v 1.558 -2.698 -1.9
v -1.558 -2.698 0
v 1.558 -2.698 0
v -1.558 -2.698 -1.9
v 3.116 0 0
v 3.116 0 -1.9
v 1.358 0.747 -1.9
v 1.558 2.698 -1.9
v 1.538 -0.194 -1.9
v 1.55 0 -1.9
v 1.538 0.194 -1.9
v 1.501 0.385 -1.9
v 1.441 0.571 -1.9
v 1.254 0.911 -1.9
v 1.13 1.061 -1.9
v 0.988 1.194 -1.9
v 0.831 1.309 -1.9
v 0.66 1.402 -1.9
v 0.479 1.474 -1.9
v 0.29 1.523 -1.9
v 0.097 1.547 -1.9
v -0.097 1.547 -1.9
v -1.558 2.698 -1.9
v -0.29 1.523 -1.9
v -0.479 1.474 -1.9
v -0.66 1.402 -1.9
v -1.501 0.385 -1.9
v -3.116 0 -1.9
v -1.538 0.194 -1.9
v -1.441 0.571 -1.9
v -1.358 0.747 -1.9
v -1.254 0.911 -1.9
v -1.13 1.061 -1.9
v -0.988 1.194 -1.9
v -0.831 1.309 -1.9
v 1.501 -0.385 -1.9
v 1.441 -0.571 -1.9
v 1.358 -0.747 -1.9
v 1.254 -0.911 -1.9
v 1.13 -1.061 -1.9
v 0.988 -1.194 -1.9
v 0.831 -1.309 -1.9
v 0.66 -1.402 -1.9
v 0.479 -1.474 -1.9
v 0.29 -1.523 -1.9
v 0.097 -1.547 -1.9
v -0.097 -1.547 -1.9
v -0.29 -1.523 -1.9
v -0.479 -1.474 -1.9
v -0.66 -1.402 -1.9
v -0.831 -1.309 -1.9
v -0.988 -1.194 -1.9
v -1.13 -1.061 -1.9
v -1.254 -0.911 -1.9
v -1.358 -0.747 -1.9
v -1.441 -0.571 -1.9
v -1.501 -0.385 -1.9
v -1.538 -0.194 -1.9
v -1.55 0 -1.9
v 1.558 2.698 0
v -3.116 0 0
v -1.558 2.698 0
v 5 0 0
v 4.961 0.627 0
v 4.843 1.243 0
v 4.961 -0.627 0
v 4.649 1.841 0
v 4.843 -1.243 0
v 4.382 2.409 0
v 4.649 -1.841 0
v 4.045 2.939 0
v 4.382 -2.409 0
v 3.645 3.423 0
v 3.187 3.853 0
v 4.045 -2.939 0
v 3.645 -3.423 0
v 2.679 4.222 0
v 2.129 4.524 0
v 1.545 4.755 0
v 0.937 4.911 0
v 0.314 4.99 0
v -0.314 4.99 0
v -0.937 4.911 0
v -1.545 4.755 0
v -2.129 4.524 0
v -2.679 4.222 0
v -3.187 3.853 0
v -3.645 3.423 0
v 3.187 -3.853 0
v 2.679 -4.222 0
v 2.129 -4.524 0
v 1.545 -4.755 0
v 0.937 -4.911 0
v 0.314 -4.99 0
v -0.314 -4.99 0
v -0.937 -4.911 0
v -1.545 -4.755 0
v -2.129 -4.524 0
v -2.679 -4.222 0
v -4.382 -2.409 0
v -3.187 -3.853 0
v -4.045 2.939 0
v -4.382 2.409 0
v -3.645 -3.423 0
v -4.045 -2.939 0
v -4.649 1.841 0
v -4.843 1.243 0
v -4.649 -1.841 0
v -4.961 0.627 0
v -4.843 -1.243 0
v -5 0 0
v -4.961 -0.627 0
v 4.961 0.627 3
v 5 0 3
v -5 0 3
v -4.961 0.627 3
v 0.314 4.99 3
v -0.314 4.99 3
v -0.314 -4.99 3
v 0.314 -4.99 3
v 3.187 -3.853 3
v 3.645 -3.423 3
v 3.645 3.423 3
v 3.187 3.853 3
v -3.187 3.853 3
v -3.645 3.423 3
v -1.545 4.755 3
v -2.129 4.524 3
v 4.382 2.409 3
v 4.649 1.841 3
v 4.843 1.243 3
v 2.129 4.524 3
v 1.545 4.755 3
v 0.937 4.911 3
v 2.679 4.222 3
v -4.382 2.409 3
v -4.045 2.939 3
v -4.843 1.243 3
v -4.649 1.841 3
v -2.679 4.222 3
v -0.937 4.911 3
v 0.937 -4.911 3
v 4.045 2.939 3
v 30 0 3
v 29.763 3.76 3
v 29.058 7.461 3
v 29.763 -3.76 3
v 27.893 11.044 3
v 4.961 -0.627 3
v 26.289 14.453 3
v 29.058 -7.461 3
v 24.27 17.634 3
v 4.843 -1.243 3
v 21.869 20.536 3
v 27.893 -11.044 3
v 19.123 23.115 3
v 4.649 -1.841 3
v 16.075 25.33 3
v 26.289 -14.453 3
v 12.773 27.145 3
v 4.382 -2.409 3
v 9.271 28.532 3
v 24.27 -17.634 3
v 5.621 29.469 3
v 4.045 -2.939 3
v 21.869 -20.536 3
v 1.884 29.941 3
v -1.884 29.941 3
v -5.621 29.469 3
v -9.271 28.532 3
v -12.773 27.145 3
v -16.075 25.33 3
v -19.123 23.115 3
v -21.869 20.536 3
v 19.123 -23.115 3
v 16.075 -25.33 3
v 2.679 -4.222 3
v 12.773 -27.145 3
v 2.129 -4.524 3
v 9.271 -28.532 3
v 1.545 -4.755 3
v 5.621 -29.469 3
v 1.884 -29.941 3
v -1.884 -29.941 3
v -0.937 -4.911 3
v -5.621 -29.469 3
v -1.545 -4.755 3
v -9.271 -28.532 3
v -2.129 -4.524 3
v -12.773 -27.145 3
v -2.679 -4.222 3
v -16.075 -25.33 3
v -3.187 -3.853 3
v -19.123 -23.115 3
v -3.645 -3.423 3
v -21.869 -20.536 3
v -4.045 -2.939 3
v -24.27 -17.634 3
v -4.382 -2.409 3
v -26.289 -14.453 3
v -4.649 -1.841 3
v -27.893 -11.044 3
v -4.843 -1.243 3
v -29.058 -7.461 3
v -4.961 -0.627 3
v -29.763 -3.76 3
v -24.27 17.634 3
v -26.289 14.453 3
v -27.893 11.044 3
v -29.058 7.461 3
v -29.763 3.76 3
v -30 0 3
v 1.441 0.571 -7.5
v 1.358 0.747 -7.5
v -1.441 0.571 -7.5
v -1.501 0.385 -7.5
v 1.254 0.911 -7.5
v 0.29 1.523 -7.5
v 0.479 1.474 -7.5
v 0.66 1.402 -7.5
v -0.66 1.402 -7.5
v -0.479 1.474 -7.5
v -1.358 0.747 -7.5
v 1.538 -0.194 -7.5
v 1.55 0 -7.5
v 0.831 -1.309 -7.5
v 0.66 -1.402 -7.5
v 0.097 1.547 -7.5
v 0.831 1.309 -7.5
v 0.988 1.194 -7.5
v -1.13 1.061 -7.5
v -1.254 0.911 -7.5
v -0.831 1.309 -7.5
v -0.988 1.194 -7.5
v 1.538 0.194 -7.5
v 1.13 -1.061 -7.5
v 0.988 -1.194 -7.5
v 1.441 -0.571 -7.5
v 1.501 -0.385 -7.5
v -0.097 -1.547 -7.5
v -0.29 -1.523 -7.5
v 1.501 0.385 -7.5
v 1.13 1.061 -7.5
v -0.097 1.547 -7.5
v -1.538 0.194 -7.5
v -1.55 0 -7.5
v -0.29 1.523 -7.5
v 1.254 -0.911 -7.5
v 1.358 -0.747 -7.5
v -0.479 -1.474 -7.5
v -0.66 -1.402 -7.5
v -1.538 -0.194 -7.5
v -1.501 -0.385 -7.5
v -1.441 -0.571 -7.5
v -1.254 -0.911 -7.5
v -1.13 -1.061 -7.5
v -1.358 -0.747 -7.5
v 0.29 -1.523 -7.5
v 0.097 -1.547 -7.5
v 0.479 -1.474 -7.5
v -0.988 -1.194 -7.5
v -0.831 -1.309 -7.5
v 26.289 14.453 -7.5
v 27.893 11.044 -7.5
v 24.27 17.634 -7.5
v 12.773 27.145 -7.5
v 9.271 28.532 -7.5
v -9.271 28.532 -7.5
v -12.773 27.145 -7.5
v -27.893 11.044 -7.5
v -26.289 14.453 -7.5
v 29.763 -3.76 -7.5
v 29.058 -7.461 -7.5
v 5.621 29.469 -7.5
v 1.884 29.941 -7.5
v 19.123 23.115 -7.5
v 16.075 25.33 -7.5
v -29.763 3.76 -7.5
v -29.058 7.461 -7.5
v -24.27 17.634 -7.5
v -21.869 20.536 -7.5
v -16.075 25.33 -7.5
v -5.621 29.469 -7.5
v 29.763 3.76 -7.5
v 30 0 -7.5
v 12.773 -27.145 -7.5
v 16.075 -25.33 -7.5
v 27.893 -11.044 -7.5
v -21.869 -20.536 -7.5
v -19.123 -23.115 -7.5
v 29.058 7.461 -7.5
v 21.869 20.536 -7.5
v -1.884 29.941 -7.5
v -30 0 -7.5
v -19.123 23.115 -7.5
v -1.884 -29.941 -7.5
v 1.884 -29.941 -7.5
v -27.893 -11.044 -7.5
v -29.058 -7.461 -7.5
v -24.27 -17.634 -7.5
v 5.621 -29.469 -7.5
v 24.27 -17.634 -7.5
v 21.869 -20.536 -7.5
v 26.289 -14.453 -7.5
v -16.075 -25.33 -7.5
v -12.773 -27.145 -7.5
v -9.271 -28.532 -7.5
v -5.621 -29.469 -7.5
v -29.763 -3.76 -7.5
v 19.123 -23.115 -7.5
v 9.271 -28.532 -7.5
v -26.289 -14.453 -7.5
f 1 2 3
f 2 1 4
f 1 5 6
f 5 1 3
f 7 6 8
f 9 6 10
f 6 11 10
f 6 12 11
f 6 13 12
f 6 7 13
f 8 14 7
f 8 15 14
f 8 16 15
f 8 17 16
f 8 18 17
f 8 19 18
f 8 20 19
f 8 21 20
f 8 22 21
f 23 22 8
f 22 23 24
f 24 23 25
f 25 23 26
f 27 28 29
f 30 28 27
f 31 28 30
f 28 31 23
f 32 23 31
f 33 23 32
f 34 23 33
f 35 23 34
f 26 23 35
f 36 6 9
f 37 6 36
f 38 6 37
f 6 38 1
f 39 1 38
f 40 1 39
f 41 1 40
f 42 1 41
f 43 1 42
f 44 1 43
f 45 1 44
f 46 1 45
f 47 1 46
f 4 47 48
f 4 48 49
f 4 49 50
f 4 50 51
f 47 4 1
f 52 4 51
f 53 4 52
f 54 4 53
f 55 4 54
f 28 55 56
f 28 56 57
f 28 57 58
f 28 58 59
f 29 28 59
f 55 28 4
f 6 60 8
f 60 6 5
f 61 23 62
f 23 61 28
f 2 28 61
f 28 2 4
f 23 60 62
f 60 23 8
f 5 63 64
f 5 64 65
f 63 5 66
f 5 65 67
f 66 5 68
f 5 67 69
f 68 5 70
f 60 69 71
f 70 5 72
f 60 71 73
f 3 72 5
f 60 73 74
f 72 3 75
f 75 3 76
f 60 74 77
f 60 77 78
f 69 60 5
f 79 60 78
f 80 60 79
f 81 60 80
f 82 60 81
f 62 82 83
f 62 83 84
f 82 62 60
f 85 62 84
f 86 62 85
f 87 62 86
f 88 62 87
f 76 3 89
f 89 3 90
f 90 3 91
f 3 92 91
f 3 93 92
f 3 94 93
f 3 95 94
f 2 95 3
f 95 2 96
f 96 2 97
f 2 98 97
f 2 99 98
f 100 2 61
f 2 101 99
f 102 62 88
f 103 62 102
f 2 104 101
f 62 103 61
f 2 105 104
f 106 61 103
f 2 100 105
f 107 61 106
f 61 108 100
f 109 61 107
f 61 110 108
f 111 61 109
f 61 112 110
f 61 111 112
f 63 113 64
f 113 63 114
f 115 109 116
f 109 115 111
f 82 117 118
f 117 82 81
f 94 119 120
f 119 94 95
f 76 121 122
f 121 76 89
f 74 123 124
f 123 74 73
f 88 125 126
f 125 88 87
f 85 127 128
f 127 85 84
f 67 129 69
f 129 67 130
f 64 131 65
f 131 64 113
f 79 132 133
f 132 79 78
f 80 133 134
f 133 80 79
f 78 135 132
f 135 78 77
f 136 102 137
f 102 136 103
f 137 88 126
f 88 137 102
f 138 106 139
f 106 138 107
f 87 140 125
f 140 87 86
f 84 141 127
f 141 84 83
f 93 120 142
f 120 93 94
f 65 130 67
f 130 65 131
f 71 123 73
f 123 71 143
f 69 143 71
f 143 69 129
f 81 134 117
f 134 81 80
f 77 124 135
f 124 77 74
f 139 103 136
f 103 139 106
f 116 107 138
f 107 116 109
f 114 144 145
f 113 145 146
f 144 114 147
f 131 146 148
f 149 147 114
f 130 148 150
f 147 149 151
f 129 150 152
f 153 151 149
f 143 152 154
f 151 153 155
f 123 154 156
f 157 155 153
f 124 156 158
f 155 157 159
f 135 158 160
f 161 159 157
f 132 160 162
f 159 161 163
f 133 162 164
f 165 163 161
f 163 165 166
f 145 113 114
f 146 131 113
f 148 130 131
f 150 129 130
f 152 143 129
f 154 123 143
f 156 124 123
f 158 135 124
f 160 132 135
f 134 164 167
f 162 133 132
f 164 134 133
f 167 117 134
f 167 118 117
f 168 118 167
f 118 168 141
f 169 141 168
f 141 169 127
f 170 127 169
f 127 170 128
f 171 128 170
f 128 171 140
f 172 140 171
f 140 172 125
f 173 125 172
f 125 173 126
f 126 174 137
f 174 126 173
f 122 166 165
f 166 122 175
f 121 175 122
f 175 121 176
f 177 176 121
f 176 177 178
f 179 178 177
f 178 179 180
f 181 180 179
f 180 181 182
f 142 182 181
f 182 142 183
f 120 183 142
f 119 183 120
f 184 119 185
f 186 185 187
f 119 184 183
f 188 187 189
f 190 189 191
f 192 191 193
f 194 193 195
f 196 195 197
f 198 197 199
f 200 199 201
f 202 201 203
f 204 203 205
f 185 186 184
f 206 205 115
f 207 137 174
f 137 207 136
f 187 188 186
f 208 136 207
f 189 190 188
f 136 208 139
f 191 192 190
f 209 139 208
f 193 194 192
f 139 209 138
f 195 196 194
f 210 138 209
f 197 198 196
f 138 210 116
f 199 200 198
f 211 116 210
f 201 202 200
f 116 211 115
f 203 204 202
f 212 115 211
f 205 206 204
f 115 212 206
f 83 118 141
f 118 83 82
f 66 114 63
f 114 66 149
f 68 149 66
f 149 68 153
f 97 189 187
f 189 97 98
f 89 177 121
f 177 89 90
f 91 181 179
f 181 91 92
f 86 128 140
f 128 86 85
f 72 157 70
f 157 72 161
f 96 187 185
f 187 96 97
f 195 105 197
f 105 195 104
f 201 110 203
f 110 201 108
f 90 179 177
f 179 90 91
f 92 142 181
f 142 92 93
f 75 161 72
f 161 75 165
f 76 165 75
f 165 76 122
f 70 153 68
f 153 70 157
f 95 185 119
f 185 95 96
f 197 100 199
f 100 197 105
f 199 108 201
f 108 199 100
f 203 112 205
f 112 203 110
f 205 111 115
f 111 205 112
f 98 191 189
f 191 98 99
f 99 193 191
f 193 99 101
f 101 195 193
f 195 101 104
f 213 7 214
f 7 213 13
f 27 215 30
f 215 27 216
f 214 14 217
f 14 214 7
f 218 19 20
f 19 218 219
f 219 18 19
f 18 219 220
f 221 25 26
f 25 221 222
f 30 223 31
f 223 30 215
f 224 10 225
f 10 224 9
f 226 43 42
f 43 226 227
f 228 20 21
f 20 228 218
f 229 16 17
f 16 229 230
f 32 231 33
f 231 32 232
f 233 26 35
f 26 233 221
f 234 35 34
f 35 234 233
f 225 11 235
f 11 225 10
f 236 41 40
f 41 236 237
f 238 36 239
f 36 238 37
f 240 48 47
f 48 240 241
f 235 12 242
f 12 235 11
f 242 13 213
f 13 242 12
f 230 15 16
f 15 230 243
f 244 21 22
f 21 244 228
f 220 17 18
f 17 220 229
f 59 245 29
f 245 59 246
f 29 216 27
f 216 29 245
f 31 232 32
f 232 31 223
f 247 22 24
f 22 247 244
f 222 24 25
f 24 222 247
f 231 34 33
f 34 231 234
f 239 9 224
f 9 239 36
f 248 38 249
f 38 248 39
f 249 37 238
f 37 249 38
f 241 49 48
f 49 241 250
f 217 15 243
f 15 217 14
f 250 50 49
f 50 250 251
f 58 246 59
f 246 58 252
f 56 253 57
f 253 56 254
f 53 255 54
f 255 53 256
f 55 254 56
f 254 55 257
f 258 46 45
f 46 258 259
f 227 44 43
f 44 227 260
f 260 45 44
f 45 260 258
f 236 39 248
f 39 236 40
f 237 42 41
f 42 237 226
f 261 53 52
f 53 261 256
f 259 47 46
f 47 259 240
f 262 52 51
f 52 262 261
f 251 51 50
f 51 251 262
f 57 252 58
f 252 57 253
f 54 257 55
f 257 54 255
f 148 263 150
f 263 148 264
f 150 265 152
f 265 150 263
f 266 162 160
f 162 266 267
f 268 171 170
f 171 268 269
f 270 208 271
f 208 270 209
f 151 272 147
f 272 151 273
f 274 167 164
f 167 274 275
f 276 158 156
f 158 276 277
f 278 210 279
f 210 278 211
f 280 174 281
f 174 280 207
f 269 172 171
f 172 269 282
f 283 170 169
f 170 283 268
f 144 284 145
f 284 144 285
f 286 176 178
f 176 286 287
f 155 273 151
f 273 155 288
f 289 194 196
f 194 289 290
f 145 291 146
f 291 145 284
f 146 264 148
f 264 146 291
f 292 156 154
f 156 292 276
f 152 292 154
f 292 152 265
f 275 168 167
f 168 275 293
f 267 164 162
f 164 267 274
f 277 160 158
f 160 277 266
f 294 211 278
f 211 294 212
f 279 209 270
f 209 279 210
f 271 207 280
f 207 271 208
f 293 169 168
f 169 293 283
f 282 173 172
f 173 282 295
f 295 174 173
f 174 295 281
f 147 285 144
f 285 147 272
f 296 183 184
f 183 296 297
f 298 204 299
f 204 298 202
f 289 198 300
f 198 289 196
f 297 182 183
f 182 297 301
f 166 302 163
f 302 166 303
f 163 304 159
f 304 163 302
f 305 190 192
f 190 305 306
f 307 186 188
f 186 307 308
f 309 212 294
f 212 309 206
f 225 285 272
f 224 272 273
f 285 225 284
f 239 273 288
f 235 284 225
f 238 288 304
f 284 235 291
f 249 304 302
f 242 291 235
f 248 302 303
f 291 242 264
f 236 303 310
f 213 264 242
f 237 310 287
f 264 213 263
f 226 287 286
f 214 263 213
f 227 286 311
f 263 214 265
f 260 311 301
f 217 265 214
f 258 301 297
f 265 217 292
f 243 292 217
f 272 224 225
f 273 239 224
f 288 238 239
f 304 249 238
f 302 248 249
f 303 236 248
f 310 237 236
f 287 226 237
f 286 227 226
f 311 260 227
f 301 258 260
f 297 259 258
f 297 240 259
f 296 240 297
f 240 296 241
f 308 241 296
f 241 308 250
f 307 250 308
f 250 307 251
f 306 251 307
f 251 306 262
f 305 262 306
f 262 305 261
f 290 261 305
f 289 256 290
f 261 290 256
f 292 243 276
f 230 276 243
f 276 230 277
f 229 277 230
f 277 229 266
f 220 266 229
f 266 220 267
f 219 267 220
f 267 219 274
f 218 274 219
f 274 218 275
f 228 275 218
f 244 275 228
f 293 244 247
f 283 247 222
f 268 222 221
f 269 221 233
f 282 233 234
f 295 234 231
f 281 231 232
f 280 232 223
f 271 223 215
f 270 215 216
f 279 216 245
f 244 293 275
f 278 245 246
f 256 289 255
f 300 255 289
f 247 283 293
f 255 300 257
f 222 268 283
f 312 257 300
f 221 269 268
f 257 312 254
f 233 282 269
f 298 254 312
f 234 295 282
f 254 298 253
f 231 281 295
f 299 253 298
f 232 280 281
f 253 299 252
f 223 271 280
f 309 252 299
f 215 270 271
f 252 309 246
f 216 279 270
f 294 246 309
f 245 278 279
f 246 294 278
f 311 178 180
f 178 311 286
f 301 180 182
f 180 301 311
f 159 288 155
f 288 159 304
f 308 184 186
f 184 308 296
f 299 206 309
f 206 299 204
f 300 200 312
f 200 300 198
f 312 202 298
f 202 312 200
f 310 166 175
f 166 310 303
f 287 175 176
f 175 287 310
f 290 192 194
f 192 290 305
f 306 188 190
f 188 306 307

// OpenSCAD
$fn = 50;

difference() {
	union() {
		translate(v = [0, 0, -7.5]) {
			cylinder(h = 10.5, r = 30.0);
		}
	}
	union() {
		translate(v = [0, 0, 0]) {
			rotate(a = [0, 0, 0]) {
				difference() {
					union() {
						translate(v = [0, 0, -1.9]) {
							linear_extrude(height = 1.9) {
								polygon(points = [[3.1158, 0.0], [1.5579000000000005, 2.698361953111554], [-1.5578999999999994, 2.6983619531115544], [-3.1158, 3.815754496783323e-16], [-1.5579000000000014, -2.6983619531115535], [1.557899999999998, -2.6983619531115552]]);
							}
						}
					}
					union();
				}
			}
		}
		#cylinder(h = 3, r = 5.0);
		#translate(v = [0, 0, -100.0]) {
			cylinder(h = 200, r = 1.55);
		}
	}
}
